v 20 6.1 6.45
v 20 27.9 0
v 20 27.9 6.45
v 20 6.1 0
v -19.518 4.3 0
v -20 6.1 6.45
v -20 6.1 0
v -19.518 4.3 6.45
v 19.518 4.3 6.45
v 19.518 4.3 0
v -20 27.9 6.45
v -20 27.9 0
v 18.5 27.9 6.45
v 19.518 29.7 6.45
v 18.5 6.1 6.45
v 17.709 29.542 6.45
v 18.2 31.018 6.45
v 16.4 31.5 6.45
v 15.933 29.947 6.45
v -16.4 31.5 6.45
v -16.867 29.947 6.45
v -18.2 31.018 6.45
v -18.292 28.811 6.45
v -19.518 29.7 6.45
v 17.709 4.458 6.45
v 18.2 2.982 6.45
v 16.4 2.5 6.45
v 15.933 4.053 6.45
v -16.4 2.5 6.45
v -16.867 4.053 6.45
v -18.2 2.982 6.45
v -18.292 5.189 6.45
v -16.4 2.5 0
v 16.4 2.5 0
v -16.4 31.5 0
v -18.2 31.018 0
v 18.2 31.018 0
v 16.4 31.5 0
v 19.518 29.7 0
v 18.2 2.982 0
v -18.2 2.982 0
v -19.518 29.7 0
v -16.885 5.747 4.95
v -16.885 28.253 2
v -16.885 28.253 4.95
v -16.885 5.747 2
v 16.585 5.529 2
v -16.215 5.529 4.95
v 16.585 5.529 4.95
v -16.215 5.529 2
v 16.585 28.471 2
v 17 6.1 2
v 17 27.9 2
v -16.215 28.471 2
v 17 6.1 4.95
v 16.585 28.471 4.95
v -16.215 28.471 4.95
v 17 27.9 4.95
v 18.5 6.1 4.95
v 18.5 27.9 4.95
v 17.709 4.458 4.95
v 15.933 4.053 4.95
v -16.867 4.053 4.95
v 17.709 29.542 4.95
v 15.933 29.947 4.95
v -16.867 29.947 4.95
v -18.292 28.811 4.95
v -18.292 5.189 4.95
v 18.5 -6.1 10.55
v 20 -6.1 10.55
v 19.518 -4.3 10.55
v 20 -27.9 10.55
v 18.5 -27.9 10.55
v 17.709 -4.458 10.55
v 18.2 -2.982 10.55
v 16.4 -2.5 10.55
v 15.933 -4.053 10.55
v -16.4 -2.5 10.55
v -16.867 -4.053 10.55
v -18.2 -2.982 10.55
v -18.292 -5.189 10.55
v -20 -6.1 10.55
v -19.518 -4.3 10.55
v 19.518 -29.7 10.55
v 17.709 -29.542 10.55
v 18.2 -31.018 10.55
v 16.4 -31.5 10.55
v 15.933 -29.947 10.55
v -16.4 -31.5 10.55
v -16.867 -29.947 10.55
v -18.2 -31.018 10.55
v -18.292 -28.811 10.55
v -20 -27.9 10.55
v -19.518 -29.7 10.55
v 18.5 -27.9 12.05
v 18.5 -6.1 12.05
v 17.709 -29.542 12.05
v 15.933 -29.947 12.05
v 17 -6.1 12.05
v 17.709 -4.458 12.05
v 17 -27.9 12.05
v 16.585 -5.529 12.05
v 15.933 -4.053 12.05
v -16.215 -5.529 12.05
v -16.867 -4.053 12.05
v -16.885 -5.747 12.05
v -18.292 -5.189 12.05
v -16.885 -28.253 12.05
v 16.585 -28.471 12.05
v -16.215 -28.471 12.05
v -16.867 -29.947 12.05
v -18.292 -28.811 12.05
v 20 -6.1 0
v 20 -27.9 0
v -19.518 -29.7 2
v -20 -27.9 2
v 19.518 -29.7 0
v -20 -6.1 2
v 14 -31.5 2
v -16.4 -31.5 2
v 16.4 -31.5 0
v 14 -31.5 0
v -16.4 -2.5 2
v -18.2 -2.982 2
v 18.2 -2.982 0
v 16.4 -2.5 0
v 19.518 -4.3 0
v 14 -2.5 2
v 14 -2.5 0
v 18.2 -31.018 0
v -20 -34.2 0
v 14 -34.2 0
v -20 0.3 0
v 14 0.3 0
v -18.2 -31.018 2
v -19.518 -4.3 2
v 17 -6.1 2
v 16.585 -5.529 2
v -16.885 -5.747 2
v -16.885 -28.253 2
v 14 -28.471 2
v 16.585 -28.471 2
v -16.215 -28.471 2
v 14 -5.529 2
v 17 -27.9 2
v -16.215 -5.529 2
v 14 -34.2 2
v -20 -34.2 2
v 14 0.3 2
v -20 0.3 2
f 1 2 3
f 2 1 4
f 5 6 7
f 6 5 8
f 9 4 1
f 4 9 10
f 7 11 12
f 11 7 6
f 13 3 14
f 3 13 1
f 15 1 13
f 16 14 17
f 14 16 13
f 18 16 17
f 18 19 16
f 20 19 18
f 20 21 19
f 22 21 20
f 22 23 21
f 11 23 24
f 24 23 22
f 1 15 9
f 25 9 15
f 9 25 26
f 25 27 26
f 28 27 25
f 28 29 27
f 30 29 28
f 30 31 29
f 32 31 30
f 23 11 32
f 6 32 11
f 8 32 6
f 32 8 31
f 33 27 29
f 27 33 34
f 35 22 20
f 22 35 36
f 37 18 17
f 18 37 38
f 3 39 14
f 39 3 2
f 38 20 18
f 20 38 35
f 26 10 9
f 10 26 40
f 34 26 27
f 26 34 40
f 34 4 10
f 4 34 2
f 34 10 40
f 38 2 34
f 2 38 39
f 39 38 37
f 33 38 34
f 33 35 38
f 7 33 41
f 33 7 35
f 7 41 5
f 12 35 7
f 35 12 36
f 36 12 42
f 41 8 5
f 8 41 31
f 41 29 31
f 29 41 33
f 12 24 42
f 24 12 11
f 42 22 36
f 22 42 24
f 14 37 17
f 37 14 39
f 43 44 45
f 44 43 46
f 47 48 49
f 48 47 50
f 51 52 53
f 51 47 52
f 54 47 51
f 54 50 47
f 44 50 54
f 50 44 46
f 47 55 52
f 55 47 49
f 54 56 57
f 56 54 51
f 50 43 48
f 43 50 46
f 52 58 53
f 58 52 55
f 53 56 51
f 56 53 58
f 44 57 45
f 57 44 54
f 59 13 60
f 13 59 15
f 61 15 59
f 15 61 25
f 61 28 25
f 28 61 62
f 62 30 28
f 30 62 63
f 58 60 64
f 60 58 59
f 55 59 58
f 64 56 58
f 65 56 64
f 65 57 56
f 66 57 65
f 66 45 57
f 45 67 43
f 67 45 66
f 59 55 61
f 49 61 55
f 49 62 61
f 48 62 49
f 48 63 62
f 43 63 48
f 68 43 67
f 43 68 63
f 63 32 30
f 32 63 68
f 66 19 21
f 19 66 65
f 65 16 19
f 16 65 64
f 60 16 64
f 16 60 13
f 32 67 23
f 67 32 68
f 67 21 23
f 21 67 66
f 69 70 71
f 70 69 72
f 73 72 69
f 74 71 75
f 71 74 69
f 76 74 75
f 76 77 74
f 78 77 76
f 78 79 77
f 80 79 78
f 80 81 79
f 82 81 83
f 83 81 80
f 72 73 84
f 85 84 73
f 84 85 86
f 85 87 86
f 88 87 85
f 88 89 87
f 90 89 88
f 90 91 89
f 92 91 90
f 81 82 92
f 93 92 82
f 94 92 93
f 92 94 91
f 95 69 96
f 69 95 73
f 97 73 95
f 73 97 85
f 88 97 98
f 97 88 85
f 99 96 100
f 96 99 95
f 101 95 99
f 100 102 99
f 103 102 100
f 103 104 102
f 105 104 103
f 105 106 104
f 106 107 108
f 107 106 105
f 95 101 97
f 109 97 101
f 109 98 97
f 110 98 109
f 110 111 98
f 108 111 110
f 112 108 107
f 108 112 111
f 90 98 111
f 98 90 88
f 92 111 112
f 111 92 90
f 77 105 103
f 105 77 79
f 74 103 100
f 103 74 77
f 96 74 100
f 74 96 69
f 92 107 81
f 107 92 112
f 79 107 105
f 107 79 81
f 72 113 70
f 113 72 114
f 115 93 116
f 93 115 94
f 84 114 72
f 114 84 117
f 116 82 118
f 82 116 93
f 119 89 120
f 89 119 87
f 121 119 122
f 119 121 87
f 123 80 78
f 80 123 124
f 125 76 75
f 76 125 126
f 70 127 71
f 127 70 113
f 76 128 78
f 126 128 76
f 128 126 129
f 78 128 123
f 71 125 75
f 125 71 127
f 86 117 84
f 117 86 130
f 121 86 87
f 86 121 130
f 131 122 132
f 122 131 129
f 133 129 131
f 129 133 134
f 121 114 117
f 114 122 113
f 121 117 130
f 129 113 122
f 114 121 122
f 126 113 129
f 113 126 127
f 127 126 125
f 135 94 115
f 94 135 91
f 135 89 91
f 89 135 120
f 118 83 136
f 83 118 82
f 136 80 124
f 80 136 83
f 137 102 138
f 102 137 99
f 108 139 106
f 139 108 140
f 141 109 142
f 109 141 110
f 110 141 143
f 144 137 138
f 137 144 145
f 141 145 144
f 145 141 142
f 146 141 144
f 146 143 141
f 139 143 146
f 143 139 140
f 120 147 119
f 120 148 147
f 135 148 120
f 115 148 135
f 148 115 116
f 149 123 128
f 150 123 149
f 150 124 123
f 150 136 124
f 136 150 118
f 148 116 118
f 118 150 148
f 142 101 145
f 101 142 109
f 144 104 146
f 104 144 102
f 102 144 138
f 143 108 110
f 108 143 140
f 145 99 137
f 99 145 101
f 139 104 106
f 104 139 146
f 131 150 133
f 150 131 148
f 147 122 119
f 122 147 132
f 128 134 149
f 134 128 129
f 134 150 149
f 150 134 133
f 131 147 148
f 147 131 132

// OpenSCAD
/*!
@brief Generic Electronic Device packaging for Tyndall
@details This OpenSCAD script will generate a 2 part fit together packaging.
This starts by making a pair of hollow rounded cuboids by differencing a slightly smaller one from a slightly larger one
then it will also remove another small amount of material to make a lip
one of the objects will have an internal lip the other one will have an external lip
you will be able to specify fit type
It can also create simple square or cylindrical cutouts on any face of the top or bottom half
4 cylindrical support posts can also be added on the bottom or top half to help position a PCB or similar device
all these features can be controlled from the variables section

@author Mark Gaffney
@version 1.6
@date 2012-05-29

@todo
enable for measurements from corners or centres of faces etc
add "fit factor" for cutouts
add option for connecting struts between top and bottom in side by side mode
re-incorporate some advanced features from v1.5

@warning
@note
Changes from previous versions:

v1.6
 - 	Incorporates improvements from brians physiological health board case v2.6
 - - 	better support for adding parts, changing features and changing layout using control variables
 - - 	Can select how tall the 2 halves are relative to each other
 - - 	Added method to choose whether to have fully cut or covered cutouts
 - -	Added optional mouse-ears
 - 	more logical method for creating circular and square cutouts in preparation for array based system
 - 	simplified method for controlling lip tolerance
 - 	abandoned some features from v1.5 such as profiled lips in quest for simplicity
 - 	method optionally adding posts to top and bottom
 - 	variables for controlling support posts on top and bottom separately
 - 	pasted contents of mouse ears and rounded cuboid as modules rather than accessing them as external files

v1.5
	adjusted a few values after receiving SLA proto-types
	increased height of posts
	added support structures on top side
	decrease diameter of support structures on top side slightly to allow for brackets at end of 40 way
	decreased z clearance
	removed includes/uses needed for WIMU packaging
	
v1.4
	added angled lip (Cube_cone_cylinder_minkowski sum) for better mating of top and bottom parts when made via SLA/SLS etc
	new more simplistic rounded cuboid module
	moved around the cutout for the uUSB so that there wasn't such a thin peice of plastic above it
changed post type to nub as SLA should be able to handle the resolution
	added easier control of orientation of parts relative to each other using single variable side_by_side
	added axis labels to most faces and tyndall logo to bottom
	added new fit type for super accurate manufacturing techniques such as SLA
v1.3
	Fix cutout positions for TOP SQUARE East and BOTTOM SQUARE West side
	Fix position of base of support posts on bottom half
v1.2
	Fixed Inner and Outer Lip Clearance implementation
	Added ability to generate support posts on bottom half of either nub or screw hole type
v1.1
	???This version was lost in a computer crash. GRRRR!
	???It implemented the ability to choose the reference point for measurements for each side
	???Let this be a lesson!
	???Back your stuff up regularly and on separate devices!
v 1.0
	Ensure pcb_clearance and fit clearance is taken into account
	fit type values changed
		force_fit from 0.4 to 0.2
		hold_fit from 0.6 to 0.3
		slide_fit from 0.8 to 0.4
		free_fit from 1to 0.5
	add cylinder & square holes to all faces
	allowed to stack or see side by side
	replace 0.1s with a_bit
	check holes on top & bottom sides meet properly
*/

//*********includes********

//use <mouse_ears_test.scad>;//mouse_ears (total_x, total_y, 2*z_resolution, mouse_ear_diameter);
//use <rounded_cuboid_v2.5.scad>;//rounded_cuboid_2_5(tot_l, tot_b, tot_h, tot_r, tot_s,center=true/false,use_sphere,top_n_bottom); hollow_rounded_cuboid_2_5(tot_l, tot_b, tot_h, tot_r, tot_s, wall_t,center=true/false,use_sphere,top_n_bottom);

//*************Control*Variables****************

has_mouse_ears=0;
has_bottom=1;
has_top=1;
has_posts=0;
posts_on_top=1;
posts_on_bottom=1;
is_side_by_side=1;
has_device=0;// for optionally showing an imported model of the internal device, not used here
device_on_top=0;
//has_switch=0; //for optionally showing an imported part, not used here
//simple_lip=0;//for choosing if a simple (1) or locking type lip (0) is used between the 2 halves, not used yet

//***********Pre*Defined*Variables**************

z_resolution=0.32;//this is how thick your printed layers are
xy_resolution=0.5;//how thick is an extruder filament in XY plane

//clearances for the interlocking lips on 3d printed parts, these values will depend on the printer it is made on. Users should NOT change these
super_fit=0.0;//
force_fit=0.2; //!@param force_fit, this is the separation between surfaces that will give a tight fit
hold_fit=0.3; //this is the separation between surfaces that will give a fit that will hold itself together but be easy to remove
slide_fit=0.4; //this is the separation between surfaces that will give a free moving fit without much wobble
free_fit=0.5; //this is the separation between surfaces that will give a free moving & loose but easy to assemble fit

//fudge
a_bit=0.1; //This is used to move items, oversize or undersize them by small amount to maintain manifoldness of the generated 3d shape, this should be on the order of 10% of the smallest dimension you will plan to use 

//**************User*Variables*****************

//internal dimensions
int_l_holder=31;//max length of the item to be held internally
int_b_holder=20;//max breadth of the item to be held internally
int_h_holder=10;//max height of the item to be held internally
int_r_holder=0.5;//radius of the corners of the device to be held internally
int_tol_holder=1.5;//distance between internal walls and edges of the item to be held internally, this allows for devices that may not be accurately measured or made and should generally be >0.5mm
int_r_tol_holder=0.1;//tolerance for the internal corners
curve_f_holder=3;//how many facets do the curved corners have?
wall_t_holder=3;//how thick are the vertical walls?
base_t_holder=2;//how thick is the base?

//lip dimensions
lip_h=1.5;//how tall are the interlocking lips?
lip_fit=super_fit;//what is the tolerance for the fit between the two sets of interlocking lips?
lip_t= wall_t_holder/2-lip_fit;//automatically calculated lip thickness (width)

//external dimensions
ext_l_holder=int_l_holder+2*(int_tol_holder+wall_t_holder);
ext_b_holder=int_b_holder+2*(int_tol_holder+wall_t_holder);
ext_h_holder=int_h_holder+2*int_tol_holder+2*base_t_holder;
ext_r_holder=int_r_holder+int_r_tol_holder+wall_t_holder;
bottom_top_int_h_ratio=0.22;//how tall is the internal void of the bottom section relative to the top section (0.5 would give 2 halves of equal height)
bottom_h=(int_h_holder*bottom_top_int_h_ratio)+int_tol_holder+base_t_holder+lip_h/2;//how tall is the bottom half
top_h=ext_h_holder-bottom_h+lip_h;//how tall is the top half

//features
mouse_ear_diameter=12;
mouse_ear_thickness=2*z_resolution;
side_side_separation=5;//how far apart the two halves are if generated together


//cutout variables
cutout_wall_thickness=1*xy_resolution; //how thick is the plastic left in the cutouts on the sides? set to 0 if you do not want any plastic left in these cutouts
cutout_base_thickness=2*z_resolution;//how thick is the plastic left in the cutouts on the bottom or top? set to 0 if you do not want any plastic left in these cutouts

north_cutout=0;//if 1 cutout on this side else none
n_cutout_c=1;//if 1 gives circle just using the _r value and ignoring the others, else gives rounded square
n_cutout_l=10;//length/tallness of the cutout
n_cutout_b=22;//breadth of the cutout
n_cutout_h=wall_t_holder+2*a_bit;//basically wall thickness plus a bit
n_cutout_r=2;//radius of the corners of the cutout
n_cutout_e=4;//height of the bottom of the cutout above the bottom of the holder 
n_cutout_t=20;//translation along the face -left +right as you look at the face from outside

south_cutout=0;//if 1 cutout on this side else none
s_cutout_c=1;//if 1 gives circle just using the _r value and ignoring the others, else gives rounded square
s_cutout_l=8;//length/tallness of the cutout
s_cutout_b=11;//breadth of the cutout
s_cutout_h=wall_t_holder+2*a_bit;//basically wall thickness plus a bit
s_cutout_r=2;//radius of the corners of the cutout
s_cutout_e=s_cutout_l+(-int_h_holder -lip_h)/2-int_tol_holder -1;//height of the bottom of the cutout above the bottom of the holder 
s_cutout_t=-1;//translation along the face -left +right

south_cutout2=0;//if 1 cutout on this side else none
s_cutout_c2=0;//if 1 gives circle just using the _r value and ignoring the others, else gives rounded square
s_cutout_l2=7;//length/tallness of the cutout
s_cutout_b2=13;//breadth of the cutout
s_cutout_h2=wall_t_holder+2*a_bit;//basically wall thickness plus a bit
s_cutout_r2=1;//radius of the corners of the cutout
s_cutout_e2=0;//height of the bottom of the cutout above the bottom of the holder 
s_cutout_t2=0;//translation along the face -left +right

east_cutout=0;//ECG cutout
e_cutout_c=0;//if 1 gives circle just using the _r value and ignoring the others, else gives rounded square
e_cutout_l=9;//length/tallness of the cutout
e_cutout_b=13;//breadth of the cutout
e_cutout_h=wall_t_holder+2*a_bit;//basically wall thickness plus a bit
e_cutout_r=3;//radius of the corners of the cutout
e_cutout_e=2;//e_cutout_l+(-int_h_holder -lip_h)/2-int_tol_holder;//height of the bottom of the cutout above the bottom of the holder 
e_cutout_t=0;//(int_l_holder/2)-46.5-4;//translation along the face -left +right

west_cutout=0;//switch cutout
w_cutout_c=1;//if 1 gives circle just using the _r value and ignoring the others, else gives rounded square
w_cutout_l=10;//length/tallness of the cutout
w_cutout_b=10;//breadth of the cutout
w_cutout_h=wall_t_holder+2*a_bit;//basically wall thickness plus a bit
w_cutout_r=2;//radius of the corners of the cutout
w_cutout_e=5;//w_cutout_l+(-int_h_holder -lip_h)/2-int_tol_holder;//height of the bottom of the cutout above the bottom of the holder 
w_cutout_t=10;//translation along the face -left +right

top_cutout=0;//top cutout
t_cutout_c=1;//if 1 gives circle just using the _r value and ignoring the others, else gives rounded square
t_cutout_l=25;//length/tallness of the cutout
t_cutout_b=20;//breadth of the cutout
t_cutout_h=base_t_holder+2*a_bit;//basically wall thickness plus a bit
t_cutout_r=7;//radius of the corners of the cutout
t_cutout_x=20;//height of the bottom of the cutout above the bottom of the holder 
t_cutout_y=15;//translation along the face -left +right

bottom_cutout=0;//bottom cutout
b_cutout_c=1;//if 1 gives circle just using the _r value and ignoring the others, else gives rounded square
b_cutout_l=25;//length/tallness of the cutout
b_cutout_b=20;//breadth of the cutout
b_cutout_h=base_t_holder+2*a_bit;//basically wall thickness plus a bit
b_cutout_r=7;//radius of the corners of the cutout
b_cutout_x=20;//position of the cutout
b_cutout_y=15;//position of the cutout


//PCB Support Posts (if enabled, four cylindrical posts will be made with their centres on the corners of a user defined rectangle offset from the centroid by a user controlled amount
//cylindrical_posts (post_l,post_b,post_h_outer,post_r_outer,post_h_inner,post_r_inner,post_x_offset,post_y_offset,post_type)
//bottom
	b_post_outer_r=3;	//external radius of the post
	b_post_inner_r=1;	//radius of the nub (or screw hole)
	b_post_outer_h=4.3;	//height of the post
	b_post_inner_h=1.7;	//height (or depth) of the nub (or screw hole)
	b_post_type=1;	//if 1 gives a nub topped post, if 0 gives a screw hole post
	b_post_x_sep=60;	//X distance between post centres
	b_post_y_sep=40;	//Y distance between post centres
	b_post_x_offset=8;	//X distance between 4 post centroid and bottom face centroid
	b_post_y_offset=5;	//Y distance between 4 post centroid and bottom face centroid
//top
	t_post_outer_r=3;	//external radius of the post
	t_post_inner_r=1;	//radius of the nub (or screw hole)
	t_post_outer_h=6;	//height of the post
	t_post_inner_h=1.7;	//height (or depth) of the nub (or screw hole)
	t_post_type=0;	//if 1 gives a nub topped post, if 0 gives a screw hole post
	t_post_x_sep=60;	//X distance between post centres
	t_post_y_sep=30;	//Y distance between post centres
	t_post_x_offset=10;	//X distance between 4 post centroid and bottom face centroid
	t_post_y_offset=1;	//Y distance between 4 post centroid and bottom face centroid


//*********************Calls*******************

//holder calls
if (has_bottom==1 && has_mouse_ears==1){
	translate(v=[0,is_side_by_side*(ext_b_holder+side_side_separation)/2,0]) mouse_ears (ext_l_holder, ext_b_holder, mouse_ear_thickness, mouse_ear_diameter);
}


if (has_bottom==1){
	translate(v=[0,is_side_by_side*(ext_b_holder+side_side_separation)/2,0]) {

	//	if (has_switch==1){//an accessory model can be loaded here
	//		translate(v=[-18.8,ext_b_holder/2-wall_t_holder-a_bit-8,base_t_holder+0.5]) color("DarkSlateGrey") rotate(a=[90,0,180]) import("2012_05_14-Base_station_switch-v0.2-Brians-v2-6.stl");
	//	}
	
	//	if(has_device==1 && device_on_top==0){//a device resembling the electronics can be inserted here
	//		translate(v=[battery_cable_length-int_l_holder/2,-int_b_holder/2,base_t_holder+int_tol_holder])color([0,1,1,1])phys_health_layer(1, 1, 1, 1);
	//	}
	
		if(has_posts==1 && posts_on_bottom==1){
			translate(v=[0,0,base_t_holder-a_bit]) cylindrical_posts (b_post_x_sep,b_post_y_sep,b_post_outer_h+b_post_inner_h,b_post_outer_r,b_post_inner_h,b_post_inner_r,b_post_x_offset,b_post_y_offset,b_post_type); //cylindrical_posts (post_l,post_b,post_h_outer,post_r_outer,post_h_inner,post_r_inner,post_x_offset,post_y_offset,post_type)
		}

		difference(){//make internal hollow cuboid
			translate(v=[0,0,0]) rounded_cuboid_2_5(ext_l_holder,ext_b_holder,int_h_holder*bottom_top_int_h_ratio+int_tol_holder+base_t_holder+lip_h/2,ext_r_holder,curve_f_holder,true);
			translate(v=[0,0,base_t_holder]) rounded_cuboid_2_5(ext_l_holder-2*wall_t_holder,ext_b_holder-2*wall_t_holder,ext_h_holder,ext_r_holder-wall_t_holder,curve_f_holder,true);
			translate(v=[0,0,int_h_holder*bottom_top_int_h_ratio+int_tol_holder+base_t_holder-lip_h/2]) rounded_cuboid_2_5(ext_l_holder-2*lip_t,ext_b_holder-2*lip_t,ext_h_holder,ext_r_holder-wall_t_holder/2,curve_f_holder,true);//cutout to make the lips
			translate(v=[0,0,ext_h_holder/2]){
				if(north_cutout==1){
					if(n_cutout_c==1){
						#translate(v=[-cutout_wall_thickness+ext_l_holder/2,n_cutout_t,n_cutout_e-int_h_holder/2]) rotate(a=[0,-90,0]) cylinder (r=n_cutout_r,h=n_cutout_h,center=false); //circular cutout on "North" end	
					}else{
						#translate(v=[-cutout_wall_thickness+ext_l_holder/2,n_cutout_t,n_cutout_e-int_h_holder/2]) rotate(a=[0,-90,0]) rounded_cuboid_2_5 (n_cutout_l,n_cutout_b,n_cutout_h,n_cutout_r,curve_f_holder,center=true); //square cutout on "North" end	
					}
				}if(south_cutout==1){
					if(s_cutout_c==1){
						translate(v=[cutout_wall_thickness-a_bit-ext_l_holder/2,-s_cutout_t,s_cutout_e-int_h_holder/2]) rotate(a=[0,90,0]) cylinder (r=s_cutout_r,h=s_cutout_h,center=false); //circular cutout on "South" end	
					}else{
						#translate(v=[cutout_wall_thickness-a_bit-ext_l_holder/2,-s_cutout_t,s_cutout_e+base_t_holder-s_cutout_l/2]) rotate(a=[0,90,0])rounded_cuboid_2_5 (s_cutout_l,s_cutout_b,s_cutout_h,s_cutout_r,curve_f_holder,center=true); //mUSB cutout on "south" end
					}
				}if(south_cutout2==1){
					if(s_cutout_c2==1){
						#	translate(v=[cutout_wall_thickness-a_bit-ext_l_holder/2,-s_cutout_t2,s_cutout_e2-int_h_holder/2]) rotate(a=[0,90,0]) cylinder (r=s_cutout_r2,h=s_cutout_h2,center=false); //circular cutout on "South" end	
					}else{
						translate(v=[cutout_wall_thickness-a_bit-ext_l_holder/2,-s_cutout_t2,s_cutout_e2+base_t_holder-s_cutout_l2/2]) rotate(a=[0,90,0])rounded_cuboid_2_5 (s_cutout_l2,s_cutout_b2,s_cutout_h2,s_cutout_r2,curve_f_holder,center=true); //uSD cutout on "south" end
					}
				}if(east_cutout==1){
					if(e_cutout_c==1){
						#rotate(a=[0,0,90]) translate(v=[cutout_wall_thickness-a_bit-ext_b_holder/2,-e_cutout_t,e_cutout_e-int_h_holder/2]) rotate(a=[0,90,0]) cylinder (r=e_cutout_r,h=e_cutout_h,center=false); //circular cutout on "East" end	
					}else{
						rotate(a=[0,0,90])translate(v=[cutout_wall_thickness-a_bit-ext_b_holder/2,-e_cutout_t,e_cutout_e+base_t_holder-e_cutout_l/2]) rotate(a=[0,90,0])rounded_cuboid_2_5 (e_cutout_l,e_cutout_b,e_cutout_h,e_cutout_r,curve_f_holder,center=true); //ECG cutout on "East" end
					}
				}if(west_cutout==1){
					if(w_cutout_c==1){
						#rotate(a=[0,0,-90]) translate(v=[cutout_wall_thickness-a_bit-ext_b_holder/2,-w_cutout_t,w_cutout_e-int_h_holder/2]) rotate(a=[0,90,0]) cylinder (r=w_cutout_r,h=w_cutout_h,center=false); //circular cutout on "West" end	
					}else{
						rotate(a=[0,0,-90])translate(v=[cutout_wall_thickness-a_bit-ext_b_holder/2,-w_cutout_t,w_cutout_e+base_t_holder-w_cutout_l/2]) rotate(a=[0,90,0])rounded_cuboid_2_5 (w_cutout_l,w_cutout_b,w_cutout_h,w_cutout_r,curve_f_holder,center=true); //switch cutout on "West" end
					}
				}if(bottom_cutout==1){
					if(b_cutout_c==1){
						#translate(v=[b_cutout_x,b_cutout_y,-ext_h_holder/2+cutout_base_thickness]) cylinder (r=b_cutout_r,h=b_cutout_h,center=false); //circular cutout on "Bottom" end	
					}else{
					#	translate(v=[b_cutout_x,b_cutout_y,-ext_h_holder/2+cutout_base_thickness]) rotate(a=[0,0,0])rounded_cuboid_2_5 (b_cutout_l,b_cutout_b,b_cutout_h,b_cutout_r,curve_f_holder,center=true); //switch cutout on "Bottom" end
					}
				}
			}
		}
	}
}

translate([-20, -34.2, 0]){
    cube([34, 34.5, 2]);
}





if (has_top==1){
	rotate(a=[0,(is_side_by_side-1)*180,(is_side_by_side-1)*180]) translate(v=[0,-is_side_by_side*(ext_b_holder+side_side_separation)/2,-(abs(is_side_by_side-1))*ext_h_holder  +(abs(has_top-1))*ext_h_holder ]){

	if(has_device==1 && device_on_top==1){	translate(v=[battery_cable_length-int_l_holder/2,int_b_holder/2,cube_height_top+int_tol_holder+a_bit])color([0,1,1,1])rotate(a=[180,0,]) phys_health_layer(1, 1, 1, 1);
	}

		if (has_mouse_ears==1 && is_side_by_side==1){
			mouse_ears (ext_l_holder, ext_b_holder, mouse_ear_thickness, mouse_ear_diameter);
		}

		if(has_posts==1 && posts_on_top==1){
			translate(v=[0,0,base_t_holder-a_bit]) cylindrical_posts (t_post_x_sep,t_post_y_sep,t_post_outer_h+t_post_inner_h,t_post_outer_r,t_post_inner_h,t_post_inner_r,t_post_x_offset,t_post_y_offset,t_post_type); //cylindrical_posts (post_l,post_b,post_h_outer,post_r_outer,post_h_inner,post_r_inner,post_x_offset,post_y_offset,post_type)
		}


		difference(){//make internal hollow cuboid
			translate(v=[0,0,0]) rounded_cuboid_2_5(ext_l_holder,ext_b_holder,top_h,ext_r_holder,curve_f_holder,true);
			translate(v=[0,0,base_t_holder]) rounded_cuboid_2_5(ext_l_holder-2*wall_t_holder,ext_b_holder-2*wall_t_holder,ext_h_holder,ext_r_holder-wall_t_holder,curve_f_holder,true);
			difference(){
				translate(v=[0,0,top_h-lip_h+100/2]) cube(size=[ext_l_holder+2,ext_b_holder+2,100],center=true);
				translate(v=[0,0,0]) rounded_cuboid_2_5(ext_l_holder-2*wall_t_holder+2*lip_t,ext_b_holder-2*wall_t_holder+2*lip_t,top_h,ext_r_holder-wall_t_holder/2,curve_f_holder,true);//lips
			}
			translate(v=[0,0,ext_h_holder/2]) rotate(a=[180,0,0]){
				 if(north_cutout==1){
					if(n_cutout_c==1){
					#	translate(v=[+cutout_wall_thickness+ext_l_holder/2,n_cutout_t-wall_t_holder,n_cutout_e-int_h_holder/2]) rotate(a=[0,-90,0]) cylinder (r=n_cutout_r,h=n_cutout_h,center=false); //circular cutout on "North" end	
					}else{
					#	translate(v=[+cutout_wall_thickness+ext_l_holder/2-wall_t_holder,n_cutout_t,n_cutout_e-int_h_holder/2]) rotate(a=[0,90,0])rounded_cuboid_2_5 (n_cutout_l,n_cutout_b,n_cutout_h,n_cutout_r,curve_f_holder,center=true); //uUSB cutout on "North" end
					}
				}if(south_cutout==1){
					if(s_cutout_c==1){
					#	rotate(a=[0,0,180]) translate(v=[+cutout_wall_thickness+ext_l_holder/2,s_cutout_t,s_cutout_e-int_h_holder/2]) rotate(a=[0,-90,0]) cylinder (r=s_cutout_r,h=s_cutout_h,center=false); //circular cutout on "South" end	
					}else{
			 	#		translate(v=[-ext_l_holder/2+wall_t_holder-cutout_wall_thickness-wall_t_holder,-s_cutout_t,s_cutout_e+base_t_holder-s_cutout_l/2]) rotate(a=[0,90,0])rounded_cuboid_2_5 (s_cutout_l,s_cutout_b,s_cutout_h,s_cutout_r,curve_f_holder,center=true); //uUSB cutout on "south" end
					}
				}if(south_cutout2==1){
					if(s_cutout_c2==1){
					#	rotate(a=[0,0,180]) translate(v=[+cutout_wall_thickness+ext_l_holder/2,s_cutout_t2,s_cutout_e2-int_h_holder/2]) rotate(a=[0,-90,0]) cylinder (r=s_cutout_r2,h=s_cutout_h2,center=false); //circular cutout on "South" end	
					}else{
					#	translate(v=[-ext_l_holder/2+wall_t_holder-cutout_wall_thickness-wall_t_holder,-s_cutout_t2,s_cutout_e2+base_t_holder-s_cutout_l2/2]) rotate(a=[0,90,0])rounded_cuboid_2_5 (s_cutout_l2,s_cutout_b2,s_cutout_h2,s_cutout_r2,curve_f_holder,center=true); //uSD cutout on "south" end
					}
				}if(east_cutout==1){
					if(e_cutout_c==1){
					#	rotate(a=[0,0,-90]) translate(v=[+cutout_wall_thickness+ext_b_holder/2,e_cutout_t,e_cutout_e-int_h_holder/2]) rotate(a=[0,-90,0]) cylinder (r=e_cutout_r,h=e_cutout_h,center=false); //circular cutout on "East" end	
					}else{
					#	rotate(a=[0,0,90])translate(v=[-ext_b_holder/2+wall_t_holder-cutout_wall_thickness,-e_cutout_t,e_cutout_e+base_t_holder-e_cutout_l/2]) rotate(a=[0,90,180])rounded_cuboid_2_5 (e_cutout_l,e_cutout_b,e_cutout_h,e_cutout_r,curve_f_holder,center=true); //uUSB cutout on "East" end
					}
				}if(west_cutout==1){
					if(w_cutout_c==1){
					#	rotate(a=[0,0,90]) translate(v=[+cutout_wall_thickness+ext_b_holder/2,w_cutout_t,w_cutout_e-int_h_holder/2]) rotate(a=[0,-90,0]) cylinder (r=w_cutout_r,h=w_cutout_h,center=false); //circular cutout on "West" end	
					}else{
						#rotate(a=[0,0,-90])translate(v=[-ext_b_holder/2+wall_t_holder-cutout_wall_thickness,-w_cutout_t,w_cutout_e+base_t_holder-w_cutout_l/2]) rotate(a=[0,90,180])rounded_cuboid_2_5 (w_cutout_l,w_cutout_b,w_cutout_h,w_cutout_r,curve_f_holder,center=true); //uUSB cutout on "West" end
					}
				}if(top_cutout==1){
					if(t_cutout_c==1){
						#mirror (v=[0,0,1]) translate(v=[t_cutout_x,t_cutout_y,-ext_h_holder/2+cutout_base_thickness]) cylinder (r=t_cutout_r,h=t_cutout_h,center=false); //circular cutout on "Top" end	
					}else{
						#rotate(a=[0,0,0])translate(v=[t_cutout_x,t_cutout_y,ext_h_holder/2-cutout_base_thickness]) rotate(a=[0,180,0])rounded_cuboid_2_5 (t_cutout_l,t_cutout_b,t_cutout_h,t_cutout_r,curve_f_holder,center=true); //uUSB cutout on "Top" end
					}
				}
			}
		}
	}
}



//*********************Modules*******************

module cylindrical_posts (post_l,post_b,post_h_outer,post_r_outer,post_h_inner,post_r_inner,post_x_offset,post_y_offset,post_type){
	//make 4 cylindrical support posts
	//place cylinders post_h_outer tall with radius post_r_outer at each vertex of rectangle defined by post_l & post_b
	//add (1) or subtract (0) depending on post_type cylinders post_h_inner tall with radius post_r_inner at (1) or from (0) cylinders
	//translate this shape by post_x_offset post_y_offset
	//I might need to add a_bit to this in various places for manifoldness

	for ( holder_x = [-(post_l/2), (post_l/2)]) {
		for ( holder_y = [-(post_b/2), (post_b/2)]) {
			if (post_type==0){ //a screw hole type post
				difference(){
					translate (v=[holder_x+post_x_offset, holder_y+post_y_offset,0]) cylinder(h = post_h_outer+a_bit, r = post_r_outer, center=false);//main body of post
					translate (v=[holder_x+post_x_offset, holder_y+post_y_offset, (post_h_outer-post_h_inner)+a_bit]) cylinder(h = post_h_inner+a_bit, r = post_r_inner, center=false);//screw hole of post
				}
			}

			else{//(post_type==1){ //a nub type post
				union(){
					translate (v=[holder_x+post_x_offset, holder_y+post_y_offset,0]) cylinder(h = post_h_outer+a_bit, r = post_r_outer, center=false);//main body of post
					translate (v=[holder_x+post_x_offset, holder_y+post_y_offset, post_h_outer]) cylinder(h = post_h_inner, r = post_r_inner, center=false);//nub of post
				}
			}
		}
	}
}

module cube_cone_cylinder_minkowski(size_x,size_y,size_z,size_r, size_z_flat, num_sides,overlap,center_loc){ 
	if(center_loc==1){
		translate(v=[(size_r+(overlap/2))-size_x/2,(size_r+(overlap/2))-size_y/2,-size_z/2]){
			minkowski(){
				cube([size_x-2*size_r,size_y-2*size_r,(size_z_flat)/2]);
				union(){
					cylinder(r1=size_r+(overlap/2),r2=size_r-(overlap/2),h=size_z-size_z_flat, center=false, $fn=num_sides*4);
					cylinder(r=size_r-(overlap/2),h=size_z-(size_z_flat/2), center=false, $fn=num_sides*4);
				}
			}
		}
	}if(center_loc==0){
		translate(v=[size_r+(overlap/2),size_r+(overlap/2),0]){
			minkowski(){
				cube([size_x-2*size_r,size_y-2*size_r,(size_z_flat)/2]);
				union(){
					cylinder(r1=size_r+(overlap/2),r2=size_r-(overlap/2),h=size_z-size_z_flat, center=false, $fn=num_sides*4);
					cylinder(r=size_r-(overlap/2),h=size_z-(size_z_flat/2), center=false, $fn=num_sides*4);
				}
			}
		}
	}if(center_loc==2){
		translate(v=[size_r,size_r,0]){
			minkowski(){
				cube([size_x-2*size_r,size_y-2*size_r,(size_z_flat)/2]);
				union(){
					cylinder(r1=size_r+(overlap/2),r2=size_r-(overlap/2),h=size_z-size_z_flat, center=false, $fn=num_sides*4);
					cylinder(r=size_r-(overlap/2),h=size_z-(size_z_flat/2), center=false, $fn=num_sides*4);
				}
			}
		}
	}
}

module basic_shape(ext_l, ext_b, ext_h, ext_r, curve_f, wall_t, lip_t, lip_h,lip_p){
	difference(){
		 //The Biggest of the rounded cuboid, the external dimensions
		rounded_cuboid(ext_l, ext_b, ext_h, ext_r, curve_f);

		//Smaller of the two rounded cuboids removed to make the inside hollow, the internal dimensions
		translate (v = [0, 0, wall_t+0.1]) rounded_cuboid(ext_l-wall_t*2, ext_b-wall_t*2, ext_h+0.2, ext_r-wall_t, curve_f);
		if (lip_p==0){//A flat rounded cuboid removed to make the lip for a click fit type box
			if(simple_lip==1) translate (v = [0, 0, ext_h/2-lip_h/2-0.1])  rounded_cuboid(ext_l-lip_t*2, ext_b-lip_t*2, lip_h+0.2, ext_r-lip_t, curve_f);
			if(simple_lip==0) translate (v = [0, 0, ext_h/2-lip_h/2-0.1]) cube_cone_cylinder_minkowski(ext_l-lip_t*2,ext_b-lip_t*2,lip_h+0.3,ext_r-lip_t, (lip_h+0.2)/2, curve_f,0.2,1);

		}
		if (lip_p==1){
			//A flat rounded cuboid removed to make the lip for a click fit type box
			translate (v = [0, 0, ext_h/2-lip_h/2+0.1]) 

			difference(){
				cube(size = [ext_l+0.2, ext_b+0.2, lip_h], center=true);
				if(simple_lip==1) rounded_cuboid(ext_l-lip_t*2, ext_b-lip_t*2, lip_h+0.2, ext_r-lip_t, curve_f);
				if(simple_lip==0) mirror(v=[0,0,1]) cube_cone_cylinder_minkowski(ext_l-lip_t*2,ext_b-lip_t*2,lip_h+0.2,ext_r-lip_t, (lip_h+0.2)/2, curve_f,0.2,1);

			}
		}
	}
}


module hollow_rounded_cuboid_2_5(n_tot_l, n_tot_b, n_tot_h, n_tot_r, n_tot_s, n_wall_t,n_center=true){
//	$fn=n_tot_s*4;
	difference(){
		rounded_cuboid_2_5(n_tot_l, n_tot_b, n_tot_h, n_tot_r, n_tot_s,n_center);
		if(n_center==true){
			translate(v=[0,0,-0.1])rounded_cuboid_2_5(n_tot_l-2*n_wall_t, n_tot_b-2*n_wall_t, n_tot_h+2*0.1, n_tot_r-n_wall_t, n_tot_s,n_center);
		}else{
			translate(v=[n_wall_t,n_wall_t,-0.1])rounded_cuboid_2_5(n_tot_l-2*n_wall_t, n_tot_b-2*n_wall_t, n_tot_h+2*0.1, n_tot_r-n_wall_t, n_tot_s,n_center);
		}
	}
}

module rounded_cuboid_2_5(m_tot_l, m_tot_b, m_tot_h, m_tot_r, m_tot_s,m_center=true){
	//$fn=m_tot_s*4;
	if(m_center==true){
		translate(v=[m_tot_r-(m_tot_l/2),m_tot_r-(m_tot_b/2),0]){
			minkowski(){
				cube([m_tot_l-2*m_tot_r,m_tot_b-2*m_tot_r,m_tot_h/2]);
				cylinder(r=m_tot_r,h=m_tot_h/2,centre=true);
			}
		}
	}else{
		translate(v=[m_tot_r,m_tot_r,0]){
			minkowski(){
				cube([m_tot_l-2*m_tot_r,m_tot_b-2*m_tot_r,m_tot_h/2]);
				cylinder(r=m_tot_r,h=m_tot_h/2,centre=true);
			}
		}
	}
}

module mouse_ears (ear_offset_x, ear_offset_y, ear_height, ear_diameter){
	translate(v=[-ear_offset_x/2, -ear_offset_y/2,0]) cylinder(r=ear_diameter/2, h=ear_height, centre=true);
	translate(v=[-ear_offset_x/2, ear_offset_y/2,0]) cylinder(r=ear_diameter/2, h=ear_height, centre=true);
	translate(v=[ear_offset_x/2, -ear_offset_y/2, 0]) cylinder(r=ear_diameter/2, h=ear_height, centre=true);
	translate(v=[ear_offset_x/2, ear_offset_y/2,0]) cylinder(r=ear_diameter/2, h=ear_height, centre=true);
}
